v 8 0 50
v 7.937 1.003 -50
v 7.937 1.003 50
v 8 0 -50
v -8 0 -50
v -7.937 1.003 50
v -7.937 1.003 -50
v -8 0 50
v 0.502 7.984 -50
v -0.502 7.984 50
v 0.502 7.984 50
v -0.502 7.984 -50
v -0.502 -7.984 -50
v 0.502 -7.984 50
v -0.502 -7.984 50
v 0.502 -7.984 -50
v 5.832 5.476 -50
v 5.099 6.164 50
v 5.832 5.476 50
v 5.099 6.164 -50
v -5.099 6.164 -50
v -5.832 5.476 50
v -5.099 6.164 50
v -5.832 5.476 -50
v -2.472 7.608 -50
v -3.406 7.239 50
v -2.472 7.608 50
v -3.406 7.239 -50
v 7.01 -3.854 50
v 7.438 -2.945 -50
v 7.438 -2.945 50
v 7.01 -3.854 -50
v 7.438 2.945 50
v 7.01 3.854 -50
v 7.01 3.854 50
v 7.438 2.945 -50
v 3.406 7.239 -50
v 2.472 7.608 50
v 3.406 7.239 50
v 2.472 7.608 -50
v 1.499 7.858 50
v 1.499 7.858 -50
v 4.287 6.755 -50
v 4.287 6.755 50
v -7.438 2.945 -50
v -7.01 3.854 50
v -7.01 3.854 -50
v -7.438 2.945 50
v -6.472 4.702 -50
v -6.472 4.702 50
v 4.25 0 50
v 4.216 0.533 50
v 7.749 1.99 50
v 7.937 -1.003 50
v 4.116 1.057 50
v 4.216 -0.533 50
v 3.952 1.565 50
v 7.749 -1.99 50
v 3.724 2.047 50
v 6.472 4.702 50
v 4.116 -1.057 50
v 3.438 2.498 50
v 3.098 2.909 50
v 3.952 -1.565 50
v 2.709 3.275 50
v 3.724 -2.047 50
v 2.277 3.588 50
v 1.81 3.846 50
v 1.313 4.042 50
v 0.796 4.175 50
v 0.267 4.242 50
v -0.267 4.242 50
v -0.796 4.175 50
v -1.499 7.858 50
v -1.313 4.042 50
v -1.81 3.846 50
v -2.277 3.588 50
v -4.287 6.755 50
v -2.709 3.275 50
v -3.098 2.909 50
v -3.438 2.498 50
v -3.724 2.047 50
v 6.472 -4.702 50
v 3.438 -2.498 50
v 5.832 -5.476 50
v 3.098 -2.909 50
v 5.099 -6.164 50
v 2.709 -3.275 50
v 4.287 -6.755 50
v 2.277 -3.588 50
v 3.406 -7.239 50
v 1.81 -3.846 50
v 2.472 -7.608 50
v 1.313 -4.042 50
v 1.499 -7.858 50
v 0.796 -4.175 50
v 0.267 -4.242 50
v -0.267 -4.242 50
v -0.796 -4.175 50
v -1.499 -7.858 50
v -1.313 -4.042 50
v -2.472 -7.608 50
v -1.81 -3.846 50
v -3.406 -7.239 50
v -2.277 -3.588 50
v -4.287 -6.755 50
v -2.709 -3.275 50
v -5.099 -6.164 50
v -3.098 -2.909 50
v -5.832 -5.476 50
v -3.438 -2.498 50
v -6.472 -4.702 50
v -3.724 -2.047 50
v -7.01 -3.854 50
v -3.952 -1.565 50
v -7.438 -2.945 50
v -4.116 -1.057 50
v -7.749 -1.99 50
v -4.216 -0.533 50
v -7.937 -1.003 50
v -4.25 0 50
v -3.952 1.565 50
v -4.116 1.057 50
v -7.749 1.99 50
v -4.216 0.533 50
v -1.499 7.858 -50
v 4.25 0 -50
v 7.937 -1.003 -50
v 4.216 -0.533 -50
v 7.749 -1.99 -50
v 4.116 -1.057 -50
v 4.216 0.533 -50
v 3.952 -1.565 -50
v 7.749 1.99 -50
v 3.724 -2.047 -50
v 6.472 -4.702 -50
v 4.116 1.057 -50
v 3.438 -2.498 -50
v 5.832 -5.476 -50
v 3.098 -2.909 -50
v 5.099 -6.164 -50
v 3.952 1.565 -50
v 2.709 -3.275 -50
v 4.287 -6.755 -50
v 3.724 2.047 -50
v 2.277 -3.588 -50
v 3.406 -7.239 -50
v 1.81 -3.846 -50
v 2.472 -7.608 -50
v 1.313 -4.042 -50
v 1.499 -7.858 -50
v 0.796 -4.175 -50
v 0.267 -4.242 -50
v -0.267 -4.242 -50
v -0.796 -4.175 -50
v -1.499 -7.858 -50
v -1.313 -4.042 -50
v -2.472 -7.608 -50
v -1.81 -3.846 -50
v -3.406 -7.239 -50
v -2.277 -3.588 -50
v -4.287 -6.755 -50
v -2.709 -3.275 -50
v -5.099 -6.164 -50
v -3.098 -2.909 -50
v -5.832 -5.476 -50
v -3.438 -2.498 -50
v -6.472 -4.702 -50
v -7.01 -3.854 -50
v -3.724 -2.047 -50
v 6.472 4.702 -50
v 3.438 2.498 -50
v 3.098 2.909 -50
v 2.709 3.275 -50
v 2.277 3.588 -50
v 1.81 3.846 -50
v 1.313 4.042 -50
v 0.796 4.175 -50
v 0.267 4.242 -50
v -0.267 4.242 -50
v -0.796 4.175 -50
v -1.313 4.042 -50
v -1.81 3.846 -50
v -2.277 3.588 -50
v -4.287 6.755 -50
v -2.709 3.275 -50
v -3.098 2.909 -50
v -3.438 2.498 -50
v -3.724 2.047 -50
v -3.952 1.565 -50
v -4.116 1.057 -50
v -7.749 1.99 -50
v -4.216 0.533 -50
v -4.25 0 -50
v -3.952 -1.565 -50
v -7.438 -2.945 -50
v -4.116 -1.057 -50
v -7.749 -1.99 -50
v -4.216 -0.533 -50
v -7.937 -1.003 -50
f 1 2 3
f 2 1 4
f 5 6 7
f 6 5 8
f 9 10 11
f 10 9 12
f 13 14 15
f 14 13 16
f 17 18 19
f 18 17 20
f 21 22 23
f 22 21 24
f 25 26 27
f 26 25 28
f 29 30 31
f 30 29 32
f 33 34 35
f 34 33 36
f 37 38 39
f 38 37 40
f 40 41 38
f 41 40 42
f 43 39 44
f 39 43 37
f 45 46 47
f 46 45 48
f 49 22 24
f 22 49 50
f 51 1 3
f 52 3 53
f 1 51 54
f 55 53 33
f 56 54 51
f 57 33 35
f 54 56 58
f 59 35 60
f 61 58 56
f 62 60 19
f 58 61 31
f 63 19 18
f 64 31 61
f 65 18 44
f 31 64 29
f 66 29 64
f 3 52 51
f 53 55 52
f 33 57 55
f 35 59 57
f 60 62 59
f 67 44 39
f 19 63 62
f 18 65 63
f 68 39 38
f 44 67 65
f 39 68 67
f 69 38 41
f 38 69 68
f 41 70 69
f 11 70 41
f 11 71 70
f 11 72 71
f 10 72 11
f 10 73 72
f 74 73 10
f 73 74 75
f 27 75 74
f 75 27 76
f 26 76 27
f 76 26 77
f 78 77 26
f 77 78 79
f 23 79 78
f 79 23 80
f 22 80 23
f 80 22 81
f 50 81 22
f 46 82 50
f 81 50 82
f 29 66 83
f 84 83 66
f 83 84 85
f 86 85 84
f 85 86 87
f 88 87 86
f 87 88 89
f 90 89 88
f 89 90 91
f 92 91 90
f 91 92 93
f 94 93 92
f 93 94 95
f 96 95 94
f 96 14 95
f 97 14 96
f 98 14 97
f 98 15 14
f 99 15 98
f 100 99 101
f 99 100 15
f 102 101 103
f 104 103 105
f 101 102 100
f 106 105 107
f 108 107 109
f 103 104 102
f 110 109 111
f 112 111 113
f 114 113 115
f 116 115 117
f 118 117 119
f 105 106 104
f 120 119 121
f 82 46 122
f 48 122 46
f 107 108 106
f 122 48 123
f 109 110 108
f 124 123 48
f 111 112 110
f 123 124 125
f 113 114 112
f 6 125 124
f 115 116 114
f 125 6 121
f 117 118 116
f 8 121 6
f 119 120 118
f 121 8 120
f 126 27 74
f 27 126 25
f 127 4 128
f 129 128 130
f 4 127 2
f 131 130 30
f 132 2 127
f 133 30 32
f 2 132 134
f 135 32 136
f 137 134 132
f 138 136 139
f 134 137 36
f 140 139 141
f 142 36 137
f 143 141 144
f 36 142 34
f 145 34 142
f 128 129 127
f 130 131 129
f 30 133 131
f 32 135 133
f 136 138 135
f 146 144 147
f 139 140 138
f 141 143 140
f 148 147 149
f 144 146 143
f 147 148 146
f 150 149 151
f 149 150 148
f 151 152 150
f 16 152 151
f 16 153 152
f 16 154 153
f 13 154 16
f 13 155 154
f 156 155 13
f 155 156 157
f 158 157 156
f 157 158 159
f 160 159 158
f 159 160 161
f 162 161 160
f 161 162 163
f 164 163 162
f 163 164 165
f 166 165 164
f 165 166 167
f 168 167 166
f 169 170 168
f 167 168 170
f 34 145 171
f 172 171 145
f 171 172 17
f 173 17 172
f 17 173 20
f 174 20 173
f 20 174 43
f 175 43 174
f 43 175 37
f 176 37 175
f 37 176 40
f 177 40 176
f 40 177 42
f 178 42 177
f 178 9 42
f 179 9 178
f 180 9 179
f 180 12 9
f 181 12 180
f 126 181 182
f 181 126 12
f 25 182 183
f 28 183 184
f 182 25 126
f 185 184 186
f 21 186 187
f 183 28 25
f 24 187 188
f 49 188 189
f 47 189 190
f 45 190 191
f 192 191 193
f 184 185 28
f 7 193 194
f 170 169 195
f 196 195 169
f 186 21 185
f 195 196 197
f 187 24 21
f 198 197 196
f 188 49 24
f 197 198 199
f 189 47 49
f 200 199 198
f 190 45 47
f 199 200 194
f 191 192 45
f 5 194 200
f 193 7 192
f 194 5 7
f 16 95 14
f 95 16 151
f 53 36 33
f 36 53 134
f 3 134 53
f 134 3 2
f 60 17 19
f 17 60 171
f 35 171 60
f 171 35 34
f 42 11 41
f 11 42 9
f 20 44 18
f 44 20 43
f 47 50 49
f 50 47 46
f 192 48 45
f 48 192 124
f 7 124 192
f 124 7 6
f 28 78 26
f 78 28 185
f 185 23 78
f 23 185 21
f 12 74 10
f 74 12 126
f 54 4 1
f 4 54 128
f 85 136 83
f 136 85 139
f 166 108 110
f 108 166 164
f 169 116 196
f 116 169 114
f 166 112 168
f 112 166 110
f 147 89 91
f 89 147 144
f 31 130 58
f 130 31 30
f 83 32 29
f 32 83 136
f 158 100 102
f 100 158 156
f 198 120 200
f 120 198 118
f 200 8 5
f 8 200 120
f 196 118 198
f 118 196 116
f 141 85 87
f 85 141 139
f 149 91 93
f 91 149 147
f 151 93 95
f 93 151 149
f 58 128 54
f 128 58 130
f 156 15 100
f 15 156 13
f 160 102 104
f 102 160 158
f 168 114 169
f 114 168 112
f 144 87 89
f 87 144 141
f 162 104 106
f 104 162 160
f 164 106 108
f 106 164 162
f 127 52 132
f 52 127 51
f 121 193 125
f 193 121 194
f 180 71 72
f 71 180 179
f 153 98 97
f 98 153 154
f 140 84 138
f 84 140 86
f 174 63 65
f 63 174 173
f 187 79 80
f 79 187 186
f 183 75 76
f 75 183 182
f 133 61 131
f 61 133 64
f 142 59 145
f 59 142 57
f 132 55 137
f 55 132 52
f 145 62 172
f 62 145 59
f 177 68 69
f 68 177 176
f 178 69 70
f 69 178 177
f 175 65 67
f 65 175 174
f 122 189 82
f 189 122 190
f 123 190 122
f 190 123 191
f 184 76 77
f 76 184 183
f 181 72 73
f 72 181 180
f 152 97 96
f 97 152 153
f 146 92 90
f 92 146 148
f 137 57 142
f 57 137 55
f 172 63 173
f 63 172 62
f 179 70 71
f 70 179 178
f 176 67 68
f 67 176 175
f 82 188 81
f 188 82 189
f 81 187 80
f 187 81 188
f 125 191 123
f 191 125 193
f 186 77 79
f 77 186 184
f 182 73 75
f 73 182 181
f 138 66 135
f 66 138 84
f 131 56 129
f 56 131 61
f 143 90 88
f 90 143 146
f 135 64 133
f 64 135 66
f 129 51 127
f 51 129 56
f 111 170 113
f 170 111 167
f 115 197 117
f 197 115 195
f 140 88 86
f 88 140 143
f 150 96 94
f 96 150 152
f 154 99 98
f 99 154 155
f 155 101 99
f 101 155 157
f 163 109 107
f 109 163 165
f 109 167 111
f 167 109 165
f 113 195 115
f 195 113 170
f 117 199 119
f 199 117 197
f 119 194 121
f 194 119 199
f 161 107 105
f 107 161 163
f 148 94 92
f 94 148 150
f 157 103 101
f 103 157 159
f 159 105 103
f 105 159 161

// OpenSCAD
$fn = 50;


difference() {
	union() {
		translate(v = [0, 0, -50.0000000000]) {
			cylinder(h = 100, r = 8.0000000000);
		}
	}
	union() {
		translate(v = [0, 0, -100.0000000000]) {
			cylinder(h = 200, r = 4.2500000000);
		}
	}
}
